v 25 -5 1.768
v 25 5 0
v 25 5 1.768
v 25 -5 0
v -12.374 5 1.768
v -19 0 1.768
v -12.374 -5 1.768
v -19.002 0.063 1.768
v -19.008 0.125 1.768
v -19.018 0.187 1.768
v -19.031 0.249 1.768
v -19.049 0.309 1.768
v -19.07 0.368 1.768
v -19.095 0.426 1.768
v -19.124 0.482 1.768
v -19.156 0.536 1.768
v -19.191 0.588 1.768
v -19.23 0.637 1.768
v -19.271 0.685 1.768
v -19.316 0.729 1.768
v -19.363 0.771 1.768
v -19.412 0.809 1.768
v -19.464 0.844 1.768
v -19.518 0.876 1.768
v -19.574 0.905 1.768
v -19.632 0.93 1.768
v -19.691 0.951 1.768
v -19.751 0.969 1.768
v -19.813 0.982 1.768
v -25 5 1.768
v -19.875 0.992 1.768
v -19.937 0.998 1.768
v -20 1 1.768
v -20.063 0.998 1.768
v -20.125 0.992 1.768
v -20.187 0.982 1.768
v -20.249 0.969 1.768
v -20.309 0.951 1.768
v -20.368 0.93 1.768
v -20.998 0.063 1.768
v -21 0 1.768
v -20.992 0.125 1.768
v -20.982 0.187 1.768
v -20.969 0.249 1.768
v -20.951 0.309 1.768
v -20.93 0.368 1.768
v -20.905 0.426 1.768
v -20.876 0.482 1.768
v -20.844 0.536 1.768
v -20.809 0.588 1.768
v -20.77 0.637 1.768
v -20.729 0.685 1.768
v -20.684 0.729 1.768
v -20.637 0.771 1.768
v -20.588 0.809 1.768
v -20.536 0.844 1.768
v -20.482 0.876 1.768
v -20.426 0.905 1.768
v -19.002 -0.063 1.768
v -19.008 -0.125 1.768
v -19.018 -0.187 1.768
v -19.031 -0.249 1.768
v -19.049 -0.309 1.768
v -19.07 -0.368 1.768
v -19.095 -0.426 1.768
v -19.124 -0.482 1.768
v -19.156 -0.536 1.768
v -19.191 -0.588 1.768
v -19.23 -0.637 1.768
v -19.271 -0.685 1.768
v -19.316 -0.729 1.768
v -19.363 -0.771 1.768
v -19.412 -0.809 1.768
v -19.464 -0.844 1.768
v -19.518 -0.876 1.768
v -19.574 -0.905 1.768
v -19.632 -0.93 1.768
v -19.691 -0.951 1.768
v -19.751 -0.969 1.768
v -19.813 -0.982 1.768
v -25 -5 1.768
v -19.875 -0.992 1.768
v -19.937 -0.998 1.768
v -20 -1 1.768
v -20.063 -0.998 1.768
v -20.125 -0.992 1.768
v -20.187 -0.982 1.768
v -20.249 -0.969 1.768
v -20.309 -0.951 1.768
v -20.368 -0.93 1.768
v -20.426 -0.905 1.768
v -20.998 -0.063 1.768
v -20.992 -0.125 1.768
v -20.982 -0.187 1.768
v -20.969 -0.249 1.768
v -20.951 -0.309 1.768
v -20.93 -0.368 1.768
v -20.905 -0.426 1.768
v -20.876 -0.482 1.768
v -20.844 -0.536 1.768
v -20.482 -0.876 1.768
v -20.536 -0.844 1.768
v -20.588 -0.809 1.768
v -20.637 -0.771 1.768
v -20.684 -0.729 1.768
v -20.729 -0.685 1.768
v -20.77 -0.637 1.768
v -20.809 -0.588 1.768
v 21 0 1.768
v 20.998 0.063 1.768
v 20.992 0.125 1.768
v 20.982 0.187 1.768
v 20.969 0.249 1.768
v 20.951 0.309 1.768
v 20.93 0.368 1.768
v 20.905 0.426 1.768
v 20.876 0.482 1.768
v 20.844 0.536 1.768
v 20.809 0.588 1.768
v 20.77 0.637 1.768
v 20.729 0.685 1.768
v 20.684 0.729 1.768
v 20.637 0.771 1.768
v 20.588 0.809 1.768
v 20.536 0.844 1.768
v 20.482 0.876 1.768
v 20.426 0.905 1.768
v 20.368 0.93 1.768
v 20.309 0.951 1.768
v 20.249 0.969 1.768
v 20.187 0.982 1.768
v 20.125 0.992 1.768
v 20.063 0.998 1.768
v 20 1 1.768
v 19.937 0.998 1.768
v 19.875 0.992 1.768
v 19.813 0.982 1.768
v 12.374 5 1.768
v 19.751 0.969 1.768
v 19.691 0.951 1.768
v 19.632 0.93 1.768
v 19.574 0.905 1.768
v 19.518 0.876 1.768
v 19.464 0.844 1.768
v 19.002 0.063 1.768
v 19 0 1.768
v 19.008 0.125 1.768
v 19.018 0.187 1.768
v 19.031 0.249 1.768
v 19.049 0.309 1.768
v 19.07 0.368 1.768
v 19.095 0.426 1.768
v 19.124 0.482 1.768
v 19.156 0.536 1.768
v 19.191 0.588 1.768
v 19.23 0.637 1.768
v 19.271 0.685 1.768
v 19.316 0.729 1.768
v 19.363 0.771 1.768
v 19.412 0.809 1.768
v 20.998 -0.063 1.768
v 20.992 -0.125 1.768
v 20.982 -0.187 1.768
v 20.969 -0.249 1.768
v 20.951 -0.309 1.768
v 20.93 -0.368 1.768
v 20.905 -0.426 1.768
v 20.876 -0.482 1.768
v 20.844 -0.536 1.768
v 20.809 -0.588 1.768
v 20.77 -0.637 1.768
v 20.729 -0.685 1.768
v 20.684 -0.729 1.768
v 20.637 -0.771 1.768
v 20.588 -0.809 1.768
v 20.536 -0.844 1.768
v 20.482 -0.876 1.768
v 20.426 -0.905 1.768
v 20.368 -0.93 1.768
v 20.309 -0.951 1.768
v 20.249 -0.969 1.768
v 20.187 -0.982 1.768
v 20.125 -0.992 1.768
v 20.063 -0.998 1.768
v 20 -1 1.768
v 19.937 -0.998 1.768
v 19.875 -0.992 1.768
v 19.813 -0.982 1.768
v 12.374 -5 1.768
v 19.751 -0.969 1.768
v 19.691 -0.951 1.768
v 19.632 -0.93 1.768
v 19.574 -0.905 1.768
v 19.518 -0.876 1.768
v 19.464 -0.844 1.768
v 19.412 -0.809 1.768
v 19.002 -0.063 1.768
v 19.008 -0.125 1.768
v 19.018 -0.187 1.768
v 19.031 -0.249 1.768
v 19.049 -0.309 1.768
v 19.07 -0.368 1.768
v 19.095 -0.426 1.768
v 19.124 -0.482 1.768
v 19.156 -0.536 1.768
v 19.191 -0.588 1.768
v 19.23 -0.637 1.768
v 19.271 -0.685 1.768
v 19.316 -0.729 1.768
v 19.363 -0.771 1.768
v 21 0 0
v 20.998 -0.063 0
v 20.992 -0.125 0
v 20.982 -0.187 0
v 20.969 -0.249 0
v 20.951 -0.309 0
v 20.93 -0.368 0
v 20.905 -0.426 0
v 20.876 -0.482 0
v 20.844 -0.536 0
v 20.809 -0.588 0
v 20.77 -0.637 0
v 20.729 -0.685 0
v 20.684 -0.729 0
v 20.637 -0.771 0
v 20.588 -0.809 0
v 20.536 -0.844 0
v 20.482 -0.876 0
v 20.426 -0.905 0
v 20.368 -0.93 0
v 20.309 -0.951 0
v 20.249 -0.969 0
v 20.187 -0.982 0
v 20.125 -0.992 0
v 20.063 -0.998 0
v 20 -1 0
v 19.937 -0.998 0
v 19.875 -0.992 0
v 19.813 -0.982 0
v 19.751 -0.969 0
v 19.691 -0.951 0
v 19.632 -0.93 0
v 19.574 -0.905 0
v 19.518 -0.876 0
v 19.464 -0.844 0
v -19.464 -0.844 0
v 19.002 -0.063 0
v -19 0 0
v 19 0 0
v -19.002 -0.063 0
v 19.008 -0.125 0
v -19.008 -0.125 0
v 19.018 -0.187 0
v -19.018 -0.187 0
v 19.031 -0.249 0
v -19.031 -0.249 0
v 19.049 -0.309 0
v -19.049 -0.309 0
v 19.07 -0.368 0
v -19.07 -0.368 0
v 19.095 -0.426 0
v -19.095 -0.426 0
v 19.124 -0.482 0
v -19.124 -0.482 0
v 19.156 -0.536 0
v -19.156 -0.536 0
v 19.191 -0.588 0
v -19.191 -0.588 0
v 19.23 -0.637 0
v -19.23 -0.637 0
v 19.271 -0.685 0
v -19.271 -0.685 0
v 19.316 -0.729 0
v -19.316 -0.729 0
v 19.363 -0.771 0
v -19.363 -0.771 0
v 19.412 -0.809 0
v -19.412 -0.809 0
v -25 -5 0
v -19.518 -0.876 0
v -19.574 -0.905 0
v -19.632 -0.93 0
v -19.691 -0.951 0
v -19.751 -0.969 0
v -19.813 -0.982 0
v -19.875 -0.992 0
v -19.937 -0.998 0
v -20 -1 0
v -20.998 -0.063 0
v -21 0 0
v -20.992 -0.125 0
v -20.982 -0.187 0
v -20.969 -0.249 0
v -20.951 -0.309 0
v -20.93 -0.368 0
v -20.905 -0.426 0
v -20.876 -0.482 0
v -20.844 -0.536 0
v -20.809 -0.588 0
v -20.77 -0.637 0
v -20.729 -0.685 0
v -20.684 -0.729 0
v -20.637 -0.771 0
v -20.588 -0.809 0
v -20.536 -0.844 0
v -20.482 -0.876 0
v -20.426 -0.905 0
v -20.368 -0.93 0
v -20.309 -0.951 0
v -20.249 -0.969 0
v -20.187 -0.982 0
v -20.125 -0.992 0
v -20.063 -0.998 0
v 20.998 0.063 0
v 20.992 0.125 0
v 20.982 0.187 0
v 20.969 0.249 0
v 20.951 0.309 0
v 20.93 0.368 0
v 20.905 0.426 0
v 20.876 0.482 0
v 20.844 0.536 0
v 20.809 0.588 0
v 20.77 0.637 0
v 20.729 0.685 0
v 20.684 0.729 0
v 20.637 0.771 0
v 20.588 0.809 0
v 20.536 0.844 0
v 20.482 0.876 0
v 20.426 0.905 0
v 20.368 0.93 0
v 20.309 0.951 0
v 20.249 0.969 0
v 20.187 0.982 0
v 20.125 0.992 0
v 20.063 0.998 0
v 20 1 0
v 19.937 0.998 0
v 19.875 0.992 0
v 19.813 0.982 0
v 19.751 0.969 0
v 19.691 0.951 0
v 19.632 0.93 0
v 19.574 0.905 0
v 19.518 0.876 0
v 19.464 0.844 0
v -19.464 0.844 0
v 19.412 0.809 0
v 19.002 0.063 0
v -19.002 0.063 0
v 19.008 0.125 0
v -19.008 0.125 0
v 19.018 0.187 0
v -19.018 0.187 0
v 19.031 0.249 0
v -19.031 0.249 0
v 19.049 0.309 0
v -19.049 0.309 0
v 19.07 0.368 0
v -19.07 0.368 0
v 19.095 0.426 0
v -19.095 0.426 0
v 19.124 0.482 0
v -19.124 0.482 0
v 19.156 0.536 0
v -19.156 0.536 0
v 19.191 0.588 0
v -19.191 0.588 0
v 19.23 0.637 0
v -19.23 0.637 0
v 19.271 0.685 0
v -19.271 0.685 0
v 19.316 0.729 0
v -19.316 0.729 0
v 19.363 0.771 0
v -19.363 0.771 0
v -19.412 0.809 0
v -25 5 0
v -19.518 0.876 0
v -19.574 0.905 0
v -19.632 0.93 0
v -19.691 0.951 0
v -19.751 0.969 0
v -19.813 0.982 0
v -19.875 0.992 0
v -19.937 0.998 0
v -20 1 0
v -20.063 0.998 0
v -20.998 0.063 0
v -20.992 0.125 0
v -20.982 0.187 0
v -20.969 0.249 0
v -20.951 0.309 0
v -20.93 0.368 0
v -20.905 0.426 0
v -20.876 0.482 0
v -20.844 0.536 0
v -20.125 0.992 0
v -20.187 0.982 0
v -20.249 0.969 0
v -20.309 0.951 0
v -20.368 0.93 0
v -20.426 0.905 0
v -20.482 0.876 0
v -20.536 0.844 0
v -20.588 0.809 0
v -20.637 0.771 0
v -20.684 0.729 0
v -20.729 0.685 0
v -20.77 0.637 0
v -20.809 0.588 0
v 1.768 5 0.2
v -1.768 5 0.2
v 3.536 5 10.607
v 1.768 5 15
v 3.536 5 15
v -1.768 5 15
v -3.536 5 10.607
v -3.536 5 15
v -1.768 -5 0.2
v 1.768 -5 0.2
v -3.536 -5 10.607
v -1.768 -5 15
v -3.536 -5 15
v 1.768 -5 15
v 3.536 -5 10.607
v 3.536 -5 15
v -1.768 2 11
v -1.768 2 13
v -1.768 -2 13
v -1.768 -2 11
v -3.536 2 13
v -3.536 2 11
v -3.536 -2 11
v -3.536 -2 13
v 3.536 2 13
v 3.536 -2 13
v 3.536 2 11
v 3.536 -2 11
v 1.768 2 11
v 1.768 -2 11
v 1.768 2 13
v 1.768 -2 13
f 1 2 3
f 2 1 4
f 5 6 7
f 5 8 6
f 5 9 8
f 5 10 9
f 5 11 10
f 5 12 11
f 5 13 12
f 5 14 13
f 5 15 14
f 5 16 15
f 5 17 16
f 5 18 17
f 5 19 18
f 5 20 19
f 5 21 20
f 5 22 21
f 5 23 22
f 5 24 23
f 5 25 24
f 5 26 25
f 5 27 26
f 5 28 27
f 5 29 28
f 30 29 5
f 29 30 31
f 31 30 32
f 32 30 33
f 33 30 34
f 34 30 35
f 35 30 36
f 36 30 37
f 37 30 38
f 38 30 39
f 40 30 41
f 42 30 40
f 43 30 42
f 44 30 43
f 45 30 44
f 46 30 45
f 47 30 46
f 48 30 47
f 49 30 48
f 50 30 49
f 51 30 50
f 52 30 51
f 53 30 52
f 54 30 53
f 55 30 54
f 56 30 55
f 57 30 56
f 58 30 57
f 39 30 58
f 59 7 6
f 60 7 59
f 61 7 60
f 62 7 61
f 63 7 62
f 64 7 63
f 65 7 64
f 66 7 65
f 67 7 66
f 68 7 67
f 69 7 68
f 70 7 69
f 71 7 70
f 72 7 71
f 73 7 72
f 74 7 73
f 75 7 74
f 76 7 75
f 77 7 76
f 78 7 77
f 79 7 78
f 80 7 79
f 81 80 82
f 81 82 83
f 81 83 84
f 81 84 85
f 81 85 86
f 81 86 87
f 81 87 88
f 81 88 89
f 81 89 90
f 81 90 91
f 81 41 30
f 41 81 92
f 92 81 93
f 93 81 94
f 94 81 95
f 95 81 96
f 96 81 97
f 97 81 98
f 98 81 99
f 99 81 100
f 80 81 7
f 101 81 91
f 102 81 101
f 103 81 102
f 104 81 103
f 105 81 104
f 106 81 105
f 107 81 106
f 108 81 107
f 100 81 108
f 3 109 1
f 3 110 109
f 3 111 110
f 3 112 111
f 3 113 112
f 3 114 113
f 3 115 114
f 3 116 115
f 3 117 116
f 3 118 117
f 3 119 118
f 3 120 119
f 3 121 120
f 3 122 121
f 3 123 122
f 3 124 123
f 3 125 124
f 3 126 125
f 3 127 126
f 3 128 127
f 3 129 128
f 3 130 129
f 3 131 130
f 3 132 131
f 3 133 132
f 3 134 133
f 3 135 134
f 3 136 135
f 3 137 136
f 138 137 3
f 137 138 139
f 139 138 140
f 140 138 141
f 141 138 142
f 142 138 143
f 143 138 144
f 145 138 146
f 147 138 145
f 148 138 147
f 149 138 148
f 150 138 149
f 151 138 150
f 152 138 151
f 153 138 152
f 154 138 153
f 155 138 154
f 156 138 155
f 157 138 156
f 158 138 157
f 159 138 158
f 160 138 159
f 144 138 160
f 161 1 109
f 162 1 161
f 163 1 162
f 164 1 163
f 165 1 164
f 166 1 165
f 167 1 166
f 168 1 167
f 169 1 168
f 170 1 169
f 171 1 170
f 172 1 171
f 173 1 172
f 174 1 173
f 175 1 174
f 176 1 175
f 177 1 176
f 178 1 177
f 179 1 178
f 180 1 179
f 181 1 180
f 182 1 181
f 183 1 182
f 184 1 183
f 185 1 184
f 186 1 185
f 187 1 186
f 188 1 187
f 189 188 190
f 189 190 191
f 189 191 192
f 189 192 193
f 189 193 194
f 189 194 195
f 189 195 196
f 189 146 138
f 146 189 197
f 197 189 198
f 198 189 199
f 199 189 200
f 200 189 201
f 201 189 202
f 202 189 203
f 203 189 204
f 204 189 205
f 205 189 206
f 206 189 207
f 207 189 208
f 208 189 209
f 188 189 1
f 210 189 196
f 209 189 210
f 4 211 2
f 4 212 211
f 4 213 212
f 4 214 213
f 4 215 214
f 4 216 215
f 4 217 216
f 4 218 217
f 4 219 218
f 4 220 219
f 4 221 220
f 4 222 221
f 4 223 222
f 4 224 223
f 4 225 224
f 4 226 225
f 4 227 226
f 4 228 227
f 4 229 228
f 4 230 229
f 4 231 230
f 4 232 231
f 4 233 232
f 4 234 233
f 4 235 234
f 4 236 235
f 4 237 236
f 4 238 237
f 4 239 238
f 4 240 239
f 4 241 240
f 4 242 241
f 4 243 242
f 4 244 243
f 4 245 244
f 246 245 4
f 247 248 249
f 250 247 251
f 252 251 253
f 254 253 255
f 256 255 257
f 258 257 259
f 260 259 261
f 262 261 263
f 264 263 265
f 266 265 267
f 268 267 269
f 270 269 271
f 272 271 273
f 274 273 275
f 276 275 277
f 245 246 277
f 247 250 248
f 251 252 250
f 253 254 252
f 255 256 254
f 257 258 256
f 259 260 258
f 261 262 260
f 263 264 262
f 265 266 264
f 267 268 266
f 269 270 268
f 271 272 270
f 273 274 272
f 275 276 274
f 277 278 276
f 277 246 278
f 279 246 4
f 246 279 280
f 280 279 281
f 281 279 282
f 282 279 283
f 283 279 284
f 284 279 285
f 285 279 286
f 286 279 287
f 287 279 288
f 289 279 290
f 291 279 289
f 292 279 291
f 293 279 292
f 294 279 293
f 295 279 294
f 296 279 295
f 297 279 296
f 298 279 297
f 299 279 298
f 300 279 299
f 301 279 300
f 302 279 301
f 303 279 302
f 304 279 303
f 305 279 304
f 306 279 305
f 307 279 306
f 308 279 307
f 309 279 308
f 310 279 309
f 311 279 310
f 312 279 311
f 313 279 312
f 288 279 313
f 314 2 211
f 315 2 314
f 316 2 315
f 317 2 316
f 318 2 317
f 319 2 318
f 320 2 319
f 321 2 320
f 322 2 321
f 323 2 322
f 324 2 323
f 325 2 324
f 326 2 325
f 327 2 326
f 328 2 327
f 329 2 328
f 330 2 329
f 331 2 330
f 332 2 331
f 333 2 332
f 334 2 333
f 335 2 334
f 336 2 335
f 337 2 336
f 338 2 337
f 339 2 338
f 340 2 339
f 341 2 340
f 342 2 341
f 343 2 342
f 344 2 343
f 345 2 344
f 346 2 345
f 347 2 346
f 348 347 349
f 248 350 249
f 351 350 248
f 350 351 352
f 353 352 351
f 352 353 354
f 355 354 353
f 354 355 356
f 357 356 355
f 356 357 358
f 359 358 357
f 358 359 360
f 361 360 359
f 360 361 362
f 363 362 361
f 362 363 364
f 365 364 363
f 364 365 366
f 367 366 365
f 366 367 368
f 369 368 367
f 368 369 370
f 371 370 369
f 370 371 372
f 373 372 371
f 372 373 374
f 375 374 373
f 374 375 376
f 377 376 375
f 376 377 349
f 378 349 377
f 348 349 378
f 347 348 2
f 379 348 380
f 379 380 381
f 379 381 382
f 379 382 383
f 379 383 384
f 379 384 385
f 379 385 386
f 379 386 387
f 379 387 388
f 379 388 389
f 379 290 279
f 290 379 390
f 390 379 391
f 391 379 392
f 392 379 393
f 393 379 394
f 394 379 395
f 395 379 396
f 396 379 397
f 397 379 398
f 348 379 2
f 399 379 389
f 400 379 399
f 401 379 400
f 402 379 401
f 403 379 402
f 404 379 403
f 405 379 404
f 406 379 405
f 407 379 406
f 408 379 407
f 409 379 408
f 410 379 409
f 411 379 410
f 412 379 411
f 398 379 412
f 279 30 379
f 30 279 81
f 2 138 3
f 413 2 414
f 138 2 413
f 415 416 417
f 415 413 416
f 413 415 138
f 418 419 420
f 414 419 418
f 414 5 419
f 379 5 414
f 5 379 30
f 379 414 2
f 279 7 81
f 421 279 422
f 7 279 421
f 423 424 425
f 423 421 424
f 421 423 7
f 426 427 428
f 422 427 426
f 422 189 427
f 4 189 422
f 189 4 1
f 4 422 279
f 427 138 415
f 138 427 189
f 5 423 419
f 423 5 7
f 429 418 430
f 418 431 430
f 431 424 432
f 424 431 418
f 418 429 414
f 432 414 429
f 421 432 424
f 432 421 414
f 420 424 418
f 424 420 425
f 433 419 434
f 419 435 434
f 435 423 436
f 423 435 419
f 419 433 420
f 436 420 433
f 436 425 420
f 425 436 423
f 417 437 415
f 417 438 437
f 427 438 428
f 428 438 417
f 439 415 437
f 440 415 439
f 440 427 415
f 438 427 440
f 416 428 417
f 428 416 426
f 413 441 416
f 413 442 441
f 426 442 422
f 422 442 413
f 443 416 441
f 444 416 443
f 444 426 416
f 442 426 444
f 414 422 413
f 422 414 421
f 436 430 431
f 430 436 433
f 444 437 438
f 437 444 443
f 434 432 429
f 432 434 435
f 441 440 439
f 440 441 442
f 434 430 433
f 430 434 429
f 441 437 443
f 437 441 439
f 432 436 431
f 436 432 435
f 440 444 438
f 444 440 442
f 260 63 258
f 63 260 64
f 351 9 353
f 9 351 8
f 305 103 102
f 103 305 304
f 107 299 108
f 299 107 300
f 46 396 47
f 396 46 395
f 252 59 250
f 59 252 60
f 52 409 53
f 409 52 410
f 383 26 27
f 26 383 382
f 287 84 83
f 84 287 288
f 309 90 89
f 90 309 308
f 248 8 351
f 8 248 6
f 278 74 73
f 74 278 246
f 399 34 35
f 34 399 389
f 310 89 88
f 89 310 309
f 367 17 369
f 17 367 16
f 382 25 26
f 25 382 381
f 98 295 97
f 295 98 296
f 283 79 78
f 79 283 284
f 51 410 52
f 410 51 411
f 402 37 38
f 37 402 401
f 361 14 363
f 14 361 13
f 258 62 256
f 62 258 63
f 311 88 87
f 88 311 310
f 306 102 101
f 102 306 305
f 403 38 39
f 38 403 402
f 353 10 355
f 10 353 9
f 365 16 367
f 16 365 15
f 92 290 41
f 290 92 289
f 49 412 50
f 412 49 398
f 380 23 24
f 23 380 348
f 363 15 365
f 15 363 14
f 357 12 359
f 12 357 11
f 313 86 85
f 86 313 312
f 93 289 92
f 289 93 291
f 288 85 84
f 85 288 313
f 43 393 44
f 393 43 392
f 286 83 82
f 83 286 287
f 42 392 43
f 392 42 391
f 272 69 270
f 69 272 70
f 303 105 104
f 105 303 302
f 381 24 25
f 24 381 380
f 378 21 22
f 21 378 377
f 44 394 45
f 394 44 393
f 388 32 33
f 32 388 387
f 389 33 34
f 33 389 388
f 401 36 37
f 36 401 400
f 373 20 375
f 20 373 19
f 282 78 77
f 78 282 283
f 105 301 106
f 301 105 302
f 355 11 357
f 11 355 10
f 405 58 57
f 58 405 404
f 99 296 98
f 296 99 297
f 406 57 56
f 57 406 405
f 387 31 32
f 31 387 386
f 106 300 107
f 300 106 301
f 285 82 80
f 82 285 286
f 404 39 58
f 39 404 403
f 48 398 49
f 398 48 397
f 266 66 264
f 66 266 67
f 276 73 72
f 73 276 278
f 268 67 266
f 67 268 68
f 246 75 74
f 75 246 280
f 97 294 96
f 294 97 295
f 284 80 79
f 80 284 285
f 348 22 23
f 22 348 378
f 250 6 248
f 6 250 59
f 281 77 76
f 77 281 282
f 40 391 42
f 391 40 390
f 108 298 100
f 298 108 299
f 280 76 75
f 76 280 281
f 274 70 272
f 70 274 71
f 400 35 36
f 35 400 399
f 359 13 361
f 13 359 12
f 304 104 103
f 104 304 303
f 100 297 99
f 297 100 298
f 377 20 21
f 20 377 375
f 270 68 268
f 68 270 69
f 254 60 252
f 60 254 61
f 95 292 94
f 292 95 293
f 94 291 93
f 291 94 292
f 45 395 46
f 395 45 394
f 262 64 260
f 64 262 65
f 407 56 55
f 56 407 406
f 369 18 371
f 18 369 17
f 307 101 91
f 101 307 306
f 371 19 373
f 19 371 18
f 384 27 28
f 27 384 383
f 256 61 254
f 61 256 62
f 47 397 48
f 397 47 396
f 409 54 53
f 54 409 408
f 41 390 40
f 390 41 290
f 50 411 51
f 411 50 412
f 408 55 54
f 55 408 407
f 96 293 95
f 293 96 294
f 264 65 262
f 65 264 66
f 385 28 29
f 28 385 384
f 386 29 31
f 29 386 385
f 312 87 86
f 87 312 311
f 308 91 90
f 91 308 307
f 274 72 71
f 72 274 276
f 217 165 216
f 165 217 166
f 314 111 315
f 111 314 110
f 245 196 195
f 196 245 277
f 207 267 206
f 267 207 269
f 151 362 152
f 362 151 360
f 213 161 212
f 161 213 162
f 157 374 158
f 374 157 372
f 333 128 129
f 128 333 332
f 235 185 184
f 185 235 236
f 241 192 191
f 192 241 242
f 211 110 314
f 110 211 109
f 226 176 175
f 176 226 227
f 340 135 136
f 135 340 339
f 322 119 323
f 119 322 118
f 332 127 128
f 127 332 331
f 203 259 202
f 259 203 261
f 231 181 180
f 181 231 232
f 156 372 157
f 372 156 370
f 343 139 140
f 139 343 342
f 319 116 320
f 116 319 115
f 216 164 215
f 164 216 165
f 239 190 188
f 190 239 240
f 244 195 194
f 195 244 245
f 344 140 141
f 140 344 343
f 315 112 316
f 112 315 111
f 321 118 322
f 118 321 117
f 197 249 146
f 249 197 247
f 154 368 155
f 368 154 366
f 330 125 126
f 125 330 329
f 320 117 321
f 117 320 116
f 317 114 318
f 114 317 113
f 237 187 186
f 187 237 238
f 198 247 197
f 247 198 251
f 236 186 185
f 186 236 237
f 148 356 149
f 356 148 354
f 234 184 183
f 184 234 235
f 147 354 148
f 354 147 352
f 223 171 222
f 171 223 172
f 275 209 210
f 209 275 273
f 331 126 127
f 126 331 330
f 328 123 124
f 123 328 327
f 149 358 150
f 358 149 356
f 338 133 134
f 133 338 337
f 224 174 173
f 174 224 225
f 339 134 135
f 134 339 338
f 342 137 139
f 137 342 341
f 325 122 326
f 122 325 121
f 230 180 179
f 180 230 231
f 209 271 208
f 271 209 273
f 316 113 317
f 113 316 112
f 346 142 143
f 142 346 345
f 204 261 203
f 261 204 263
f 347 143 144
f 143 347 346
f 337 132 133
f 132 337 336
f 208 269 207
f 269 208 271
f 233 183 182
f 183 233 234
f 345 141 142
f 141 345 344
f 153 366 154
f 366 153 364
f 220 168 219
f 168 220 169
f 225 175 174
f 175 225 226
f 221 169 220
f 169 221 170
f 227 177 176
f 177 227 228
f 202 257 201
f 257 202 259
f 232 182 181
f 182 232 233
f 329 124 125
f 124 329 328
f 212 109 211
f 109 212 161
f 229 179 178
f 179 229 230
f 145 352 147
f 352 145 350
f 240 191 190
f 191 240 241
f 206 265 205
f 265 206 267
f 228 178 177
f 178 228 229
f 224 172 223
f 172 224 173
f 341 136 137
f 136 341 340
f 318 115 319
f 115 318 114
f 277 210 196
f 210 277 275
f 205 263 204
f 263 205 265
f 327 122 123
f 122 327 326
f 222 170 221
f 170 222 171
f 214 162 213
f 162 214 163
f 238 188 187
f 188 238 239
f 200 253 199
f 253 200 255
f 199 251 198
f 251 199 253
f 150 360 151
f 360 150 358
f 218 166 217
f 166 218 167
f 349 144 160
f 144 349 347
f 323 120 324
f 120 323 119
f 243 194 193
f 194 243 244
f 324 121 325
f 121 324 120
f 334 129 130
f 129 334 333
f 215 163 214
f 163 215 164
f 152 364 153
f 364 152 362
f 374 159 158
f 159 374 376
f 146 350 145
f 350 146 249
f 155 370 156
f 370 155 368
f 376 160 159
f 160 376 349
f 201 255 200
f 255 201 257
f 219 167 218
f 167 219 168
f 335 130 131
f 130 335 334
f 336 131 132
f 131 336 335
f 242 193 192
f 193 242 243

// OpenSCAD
// file: commun.scad
$fn = 100;

delta = 0.4;
delta_y = 0.1;
delta_x = 0.4;
hinge_delta = 0.25;

height = 200;
width = 150;
tube_diameter = 5;

plateform_width = 20;
plateform_length = 20;
plateforme_thickness = 1;

portico_hinge_length = width / 15;
hinge_length = 10;

portico_hinge_diameter = 2.1;
lock_plateform_diameter = 2;

screw_diameter = 2;

attach_hole_width = 2;
attach_hole_length = 4;

fn = 4;
//fn_angle = 360 / fn / 2;
fn_angle = 0;
portico_thickness = tube_diameter * cos(45);

portico_angle = atan((width / 2 - plateform_width / 2) / height);
portico_length = sqrt((width / 2 - plateform_width / 2) * (width / 2 - plateform_width / 2) + height * height);

module tube(length, diameter) {
  if (false) {
    linear_extrude(height = length, convexity = 10, twist = 0)
    circle(d = diameter, $fn = fn);
  } else {
    x = cos(45) * diameter;
    translate([-x / 2, -x / 2, 0]) cube([x, x, length]);
  }
}

module portico_lock_plateform() {
//  tube(tube_diameter / 2 + plateforme_thickness * 2, tube_diameter);
  male_lock(tube_diameter / 2 + plateforme_thickness * 2);
}

module male_lock(length) {
  translate([-(portico_thickness) / 2, -(portico_thickness) / 2, 0]) cube([portico_thickness, portico_thickness, length]);
}

module female_lock(length) {
  translate([-portico_thickness / 2 - delta_x, -portico_thickness / 2 - delta_y, 0]) cube([portico_thickness + delta_x * 2, portico_thickness + delta_y * 2, length]);
}
// main file
include <commun.scad>

module attach() {
  attach_thickness = portico_thickness / 2;
  attach_width = 10;
  attach_length = 50;
  attach_height = 15;
  attache_opening = portico_thickness;
  opening_vertical_offset = 0.2;
  triangle_size = 20;
  hole_offset = attach_height * 0.8;

  translate([-attach_length / 2, -attach_width / 2, 0]) difference() {
    union() {
      cube([attach_length, attach_width, attach_thickness]);
      translate([attach_length / 2, 0, 0]) rotate([0, 45, 0]) translate([-triangle_size / 2, 0, -triangle_size / 2]) cube([triangle_size, attach_width, triangle_size]);
      translate([(attach_length - attache_opening) / 2 - attach_thickness, 0, 0]) cube([attach_thickness, attach_width, attach_height]);
      translate([(attach_length + attache_opening) / 2, 0, 0]) cube([attach_thickness, attach_width, attach_height]);
    }
    translate([(attach_length - attache_opening) / 2, -1, opening_vertical_offset]) cube([attache_opening, attach_width + 2, 500]);
    translate([-1, -1, -500]) cube([attach_length + 2, attach_width + 2, 500]);
    translate([0, (attach_width - attach_hole_length) / 2, hole_offset - attach_hole_width / 2]) cube([attach_length, attach_hole_length, attach_hole_width]);
    translate([attach_width / 2, attach_width / 2, -1]) cylinder(d = screw_diameter, h = attach_thickness + 2);
    translate([attach_length - attach_width / 2, attach_width / 2, -1]) cylinder(d = screw_diameter, h = attach_thickness + 2);
  }
}

attach();
